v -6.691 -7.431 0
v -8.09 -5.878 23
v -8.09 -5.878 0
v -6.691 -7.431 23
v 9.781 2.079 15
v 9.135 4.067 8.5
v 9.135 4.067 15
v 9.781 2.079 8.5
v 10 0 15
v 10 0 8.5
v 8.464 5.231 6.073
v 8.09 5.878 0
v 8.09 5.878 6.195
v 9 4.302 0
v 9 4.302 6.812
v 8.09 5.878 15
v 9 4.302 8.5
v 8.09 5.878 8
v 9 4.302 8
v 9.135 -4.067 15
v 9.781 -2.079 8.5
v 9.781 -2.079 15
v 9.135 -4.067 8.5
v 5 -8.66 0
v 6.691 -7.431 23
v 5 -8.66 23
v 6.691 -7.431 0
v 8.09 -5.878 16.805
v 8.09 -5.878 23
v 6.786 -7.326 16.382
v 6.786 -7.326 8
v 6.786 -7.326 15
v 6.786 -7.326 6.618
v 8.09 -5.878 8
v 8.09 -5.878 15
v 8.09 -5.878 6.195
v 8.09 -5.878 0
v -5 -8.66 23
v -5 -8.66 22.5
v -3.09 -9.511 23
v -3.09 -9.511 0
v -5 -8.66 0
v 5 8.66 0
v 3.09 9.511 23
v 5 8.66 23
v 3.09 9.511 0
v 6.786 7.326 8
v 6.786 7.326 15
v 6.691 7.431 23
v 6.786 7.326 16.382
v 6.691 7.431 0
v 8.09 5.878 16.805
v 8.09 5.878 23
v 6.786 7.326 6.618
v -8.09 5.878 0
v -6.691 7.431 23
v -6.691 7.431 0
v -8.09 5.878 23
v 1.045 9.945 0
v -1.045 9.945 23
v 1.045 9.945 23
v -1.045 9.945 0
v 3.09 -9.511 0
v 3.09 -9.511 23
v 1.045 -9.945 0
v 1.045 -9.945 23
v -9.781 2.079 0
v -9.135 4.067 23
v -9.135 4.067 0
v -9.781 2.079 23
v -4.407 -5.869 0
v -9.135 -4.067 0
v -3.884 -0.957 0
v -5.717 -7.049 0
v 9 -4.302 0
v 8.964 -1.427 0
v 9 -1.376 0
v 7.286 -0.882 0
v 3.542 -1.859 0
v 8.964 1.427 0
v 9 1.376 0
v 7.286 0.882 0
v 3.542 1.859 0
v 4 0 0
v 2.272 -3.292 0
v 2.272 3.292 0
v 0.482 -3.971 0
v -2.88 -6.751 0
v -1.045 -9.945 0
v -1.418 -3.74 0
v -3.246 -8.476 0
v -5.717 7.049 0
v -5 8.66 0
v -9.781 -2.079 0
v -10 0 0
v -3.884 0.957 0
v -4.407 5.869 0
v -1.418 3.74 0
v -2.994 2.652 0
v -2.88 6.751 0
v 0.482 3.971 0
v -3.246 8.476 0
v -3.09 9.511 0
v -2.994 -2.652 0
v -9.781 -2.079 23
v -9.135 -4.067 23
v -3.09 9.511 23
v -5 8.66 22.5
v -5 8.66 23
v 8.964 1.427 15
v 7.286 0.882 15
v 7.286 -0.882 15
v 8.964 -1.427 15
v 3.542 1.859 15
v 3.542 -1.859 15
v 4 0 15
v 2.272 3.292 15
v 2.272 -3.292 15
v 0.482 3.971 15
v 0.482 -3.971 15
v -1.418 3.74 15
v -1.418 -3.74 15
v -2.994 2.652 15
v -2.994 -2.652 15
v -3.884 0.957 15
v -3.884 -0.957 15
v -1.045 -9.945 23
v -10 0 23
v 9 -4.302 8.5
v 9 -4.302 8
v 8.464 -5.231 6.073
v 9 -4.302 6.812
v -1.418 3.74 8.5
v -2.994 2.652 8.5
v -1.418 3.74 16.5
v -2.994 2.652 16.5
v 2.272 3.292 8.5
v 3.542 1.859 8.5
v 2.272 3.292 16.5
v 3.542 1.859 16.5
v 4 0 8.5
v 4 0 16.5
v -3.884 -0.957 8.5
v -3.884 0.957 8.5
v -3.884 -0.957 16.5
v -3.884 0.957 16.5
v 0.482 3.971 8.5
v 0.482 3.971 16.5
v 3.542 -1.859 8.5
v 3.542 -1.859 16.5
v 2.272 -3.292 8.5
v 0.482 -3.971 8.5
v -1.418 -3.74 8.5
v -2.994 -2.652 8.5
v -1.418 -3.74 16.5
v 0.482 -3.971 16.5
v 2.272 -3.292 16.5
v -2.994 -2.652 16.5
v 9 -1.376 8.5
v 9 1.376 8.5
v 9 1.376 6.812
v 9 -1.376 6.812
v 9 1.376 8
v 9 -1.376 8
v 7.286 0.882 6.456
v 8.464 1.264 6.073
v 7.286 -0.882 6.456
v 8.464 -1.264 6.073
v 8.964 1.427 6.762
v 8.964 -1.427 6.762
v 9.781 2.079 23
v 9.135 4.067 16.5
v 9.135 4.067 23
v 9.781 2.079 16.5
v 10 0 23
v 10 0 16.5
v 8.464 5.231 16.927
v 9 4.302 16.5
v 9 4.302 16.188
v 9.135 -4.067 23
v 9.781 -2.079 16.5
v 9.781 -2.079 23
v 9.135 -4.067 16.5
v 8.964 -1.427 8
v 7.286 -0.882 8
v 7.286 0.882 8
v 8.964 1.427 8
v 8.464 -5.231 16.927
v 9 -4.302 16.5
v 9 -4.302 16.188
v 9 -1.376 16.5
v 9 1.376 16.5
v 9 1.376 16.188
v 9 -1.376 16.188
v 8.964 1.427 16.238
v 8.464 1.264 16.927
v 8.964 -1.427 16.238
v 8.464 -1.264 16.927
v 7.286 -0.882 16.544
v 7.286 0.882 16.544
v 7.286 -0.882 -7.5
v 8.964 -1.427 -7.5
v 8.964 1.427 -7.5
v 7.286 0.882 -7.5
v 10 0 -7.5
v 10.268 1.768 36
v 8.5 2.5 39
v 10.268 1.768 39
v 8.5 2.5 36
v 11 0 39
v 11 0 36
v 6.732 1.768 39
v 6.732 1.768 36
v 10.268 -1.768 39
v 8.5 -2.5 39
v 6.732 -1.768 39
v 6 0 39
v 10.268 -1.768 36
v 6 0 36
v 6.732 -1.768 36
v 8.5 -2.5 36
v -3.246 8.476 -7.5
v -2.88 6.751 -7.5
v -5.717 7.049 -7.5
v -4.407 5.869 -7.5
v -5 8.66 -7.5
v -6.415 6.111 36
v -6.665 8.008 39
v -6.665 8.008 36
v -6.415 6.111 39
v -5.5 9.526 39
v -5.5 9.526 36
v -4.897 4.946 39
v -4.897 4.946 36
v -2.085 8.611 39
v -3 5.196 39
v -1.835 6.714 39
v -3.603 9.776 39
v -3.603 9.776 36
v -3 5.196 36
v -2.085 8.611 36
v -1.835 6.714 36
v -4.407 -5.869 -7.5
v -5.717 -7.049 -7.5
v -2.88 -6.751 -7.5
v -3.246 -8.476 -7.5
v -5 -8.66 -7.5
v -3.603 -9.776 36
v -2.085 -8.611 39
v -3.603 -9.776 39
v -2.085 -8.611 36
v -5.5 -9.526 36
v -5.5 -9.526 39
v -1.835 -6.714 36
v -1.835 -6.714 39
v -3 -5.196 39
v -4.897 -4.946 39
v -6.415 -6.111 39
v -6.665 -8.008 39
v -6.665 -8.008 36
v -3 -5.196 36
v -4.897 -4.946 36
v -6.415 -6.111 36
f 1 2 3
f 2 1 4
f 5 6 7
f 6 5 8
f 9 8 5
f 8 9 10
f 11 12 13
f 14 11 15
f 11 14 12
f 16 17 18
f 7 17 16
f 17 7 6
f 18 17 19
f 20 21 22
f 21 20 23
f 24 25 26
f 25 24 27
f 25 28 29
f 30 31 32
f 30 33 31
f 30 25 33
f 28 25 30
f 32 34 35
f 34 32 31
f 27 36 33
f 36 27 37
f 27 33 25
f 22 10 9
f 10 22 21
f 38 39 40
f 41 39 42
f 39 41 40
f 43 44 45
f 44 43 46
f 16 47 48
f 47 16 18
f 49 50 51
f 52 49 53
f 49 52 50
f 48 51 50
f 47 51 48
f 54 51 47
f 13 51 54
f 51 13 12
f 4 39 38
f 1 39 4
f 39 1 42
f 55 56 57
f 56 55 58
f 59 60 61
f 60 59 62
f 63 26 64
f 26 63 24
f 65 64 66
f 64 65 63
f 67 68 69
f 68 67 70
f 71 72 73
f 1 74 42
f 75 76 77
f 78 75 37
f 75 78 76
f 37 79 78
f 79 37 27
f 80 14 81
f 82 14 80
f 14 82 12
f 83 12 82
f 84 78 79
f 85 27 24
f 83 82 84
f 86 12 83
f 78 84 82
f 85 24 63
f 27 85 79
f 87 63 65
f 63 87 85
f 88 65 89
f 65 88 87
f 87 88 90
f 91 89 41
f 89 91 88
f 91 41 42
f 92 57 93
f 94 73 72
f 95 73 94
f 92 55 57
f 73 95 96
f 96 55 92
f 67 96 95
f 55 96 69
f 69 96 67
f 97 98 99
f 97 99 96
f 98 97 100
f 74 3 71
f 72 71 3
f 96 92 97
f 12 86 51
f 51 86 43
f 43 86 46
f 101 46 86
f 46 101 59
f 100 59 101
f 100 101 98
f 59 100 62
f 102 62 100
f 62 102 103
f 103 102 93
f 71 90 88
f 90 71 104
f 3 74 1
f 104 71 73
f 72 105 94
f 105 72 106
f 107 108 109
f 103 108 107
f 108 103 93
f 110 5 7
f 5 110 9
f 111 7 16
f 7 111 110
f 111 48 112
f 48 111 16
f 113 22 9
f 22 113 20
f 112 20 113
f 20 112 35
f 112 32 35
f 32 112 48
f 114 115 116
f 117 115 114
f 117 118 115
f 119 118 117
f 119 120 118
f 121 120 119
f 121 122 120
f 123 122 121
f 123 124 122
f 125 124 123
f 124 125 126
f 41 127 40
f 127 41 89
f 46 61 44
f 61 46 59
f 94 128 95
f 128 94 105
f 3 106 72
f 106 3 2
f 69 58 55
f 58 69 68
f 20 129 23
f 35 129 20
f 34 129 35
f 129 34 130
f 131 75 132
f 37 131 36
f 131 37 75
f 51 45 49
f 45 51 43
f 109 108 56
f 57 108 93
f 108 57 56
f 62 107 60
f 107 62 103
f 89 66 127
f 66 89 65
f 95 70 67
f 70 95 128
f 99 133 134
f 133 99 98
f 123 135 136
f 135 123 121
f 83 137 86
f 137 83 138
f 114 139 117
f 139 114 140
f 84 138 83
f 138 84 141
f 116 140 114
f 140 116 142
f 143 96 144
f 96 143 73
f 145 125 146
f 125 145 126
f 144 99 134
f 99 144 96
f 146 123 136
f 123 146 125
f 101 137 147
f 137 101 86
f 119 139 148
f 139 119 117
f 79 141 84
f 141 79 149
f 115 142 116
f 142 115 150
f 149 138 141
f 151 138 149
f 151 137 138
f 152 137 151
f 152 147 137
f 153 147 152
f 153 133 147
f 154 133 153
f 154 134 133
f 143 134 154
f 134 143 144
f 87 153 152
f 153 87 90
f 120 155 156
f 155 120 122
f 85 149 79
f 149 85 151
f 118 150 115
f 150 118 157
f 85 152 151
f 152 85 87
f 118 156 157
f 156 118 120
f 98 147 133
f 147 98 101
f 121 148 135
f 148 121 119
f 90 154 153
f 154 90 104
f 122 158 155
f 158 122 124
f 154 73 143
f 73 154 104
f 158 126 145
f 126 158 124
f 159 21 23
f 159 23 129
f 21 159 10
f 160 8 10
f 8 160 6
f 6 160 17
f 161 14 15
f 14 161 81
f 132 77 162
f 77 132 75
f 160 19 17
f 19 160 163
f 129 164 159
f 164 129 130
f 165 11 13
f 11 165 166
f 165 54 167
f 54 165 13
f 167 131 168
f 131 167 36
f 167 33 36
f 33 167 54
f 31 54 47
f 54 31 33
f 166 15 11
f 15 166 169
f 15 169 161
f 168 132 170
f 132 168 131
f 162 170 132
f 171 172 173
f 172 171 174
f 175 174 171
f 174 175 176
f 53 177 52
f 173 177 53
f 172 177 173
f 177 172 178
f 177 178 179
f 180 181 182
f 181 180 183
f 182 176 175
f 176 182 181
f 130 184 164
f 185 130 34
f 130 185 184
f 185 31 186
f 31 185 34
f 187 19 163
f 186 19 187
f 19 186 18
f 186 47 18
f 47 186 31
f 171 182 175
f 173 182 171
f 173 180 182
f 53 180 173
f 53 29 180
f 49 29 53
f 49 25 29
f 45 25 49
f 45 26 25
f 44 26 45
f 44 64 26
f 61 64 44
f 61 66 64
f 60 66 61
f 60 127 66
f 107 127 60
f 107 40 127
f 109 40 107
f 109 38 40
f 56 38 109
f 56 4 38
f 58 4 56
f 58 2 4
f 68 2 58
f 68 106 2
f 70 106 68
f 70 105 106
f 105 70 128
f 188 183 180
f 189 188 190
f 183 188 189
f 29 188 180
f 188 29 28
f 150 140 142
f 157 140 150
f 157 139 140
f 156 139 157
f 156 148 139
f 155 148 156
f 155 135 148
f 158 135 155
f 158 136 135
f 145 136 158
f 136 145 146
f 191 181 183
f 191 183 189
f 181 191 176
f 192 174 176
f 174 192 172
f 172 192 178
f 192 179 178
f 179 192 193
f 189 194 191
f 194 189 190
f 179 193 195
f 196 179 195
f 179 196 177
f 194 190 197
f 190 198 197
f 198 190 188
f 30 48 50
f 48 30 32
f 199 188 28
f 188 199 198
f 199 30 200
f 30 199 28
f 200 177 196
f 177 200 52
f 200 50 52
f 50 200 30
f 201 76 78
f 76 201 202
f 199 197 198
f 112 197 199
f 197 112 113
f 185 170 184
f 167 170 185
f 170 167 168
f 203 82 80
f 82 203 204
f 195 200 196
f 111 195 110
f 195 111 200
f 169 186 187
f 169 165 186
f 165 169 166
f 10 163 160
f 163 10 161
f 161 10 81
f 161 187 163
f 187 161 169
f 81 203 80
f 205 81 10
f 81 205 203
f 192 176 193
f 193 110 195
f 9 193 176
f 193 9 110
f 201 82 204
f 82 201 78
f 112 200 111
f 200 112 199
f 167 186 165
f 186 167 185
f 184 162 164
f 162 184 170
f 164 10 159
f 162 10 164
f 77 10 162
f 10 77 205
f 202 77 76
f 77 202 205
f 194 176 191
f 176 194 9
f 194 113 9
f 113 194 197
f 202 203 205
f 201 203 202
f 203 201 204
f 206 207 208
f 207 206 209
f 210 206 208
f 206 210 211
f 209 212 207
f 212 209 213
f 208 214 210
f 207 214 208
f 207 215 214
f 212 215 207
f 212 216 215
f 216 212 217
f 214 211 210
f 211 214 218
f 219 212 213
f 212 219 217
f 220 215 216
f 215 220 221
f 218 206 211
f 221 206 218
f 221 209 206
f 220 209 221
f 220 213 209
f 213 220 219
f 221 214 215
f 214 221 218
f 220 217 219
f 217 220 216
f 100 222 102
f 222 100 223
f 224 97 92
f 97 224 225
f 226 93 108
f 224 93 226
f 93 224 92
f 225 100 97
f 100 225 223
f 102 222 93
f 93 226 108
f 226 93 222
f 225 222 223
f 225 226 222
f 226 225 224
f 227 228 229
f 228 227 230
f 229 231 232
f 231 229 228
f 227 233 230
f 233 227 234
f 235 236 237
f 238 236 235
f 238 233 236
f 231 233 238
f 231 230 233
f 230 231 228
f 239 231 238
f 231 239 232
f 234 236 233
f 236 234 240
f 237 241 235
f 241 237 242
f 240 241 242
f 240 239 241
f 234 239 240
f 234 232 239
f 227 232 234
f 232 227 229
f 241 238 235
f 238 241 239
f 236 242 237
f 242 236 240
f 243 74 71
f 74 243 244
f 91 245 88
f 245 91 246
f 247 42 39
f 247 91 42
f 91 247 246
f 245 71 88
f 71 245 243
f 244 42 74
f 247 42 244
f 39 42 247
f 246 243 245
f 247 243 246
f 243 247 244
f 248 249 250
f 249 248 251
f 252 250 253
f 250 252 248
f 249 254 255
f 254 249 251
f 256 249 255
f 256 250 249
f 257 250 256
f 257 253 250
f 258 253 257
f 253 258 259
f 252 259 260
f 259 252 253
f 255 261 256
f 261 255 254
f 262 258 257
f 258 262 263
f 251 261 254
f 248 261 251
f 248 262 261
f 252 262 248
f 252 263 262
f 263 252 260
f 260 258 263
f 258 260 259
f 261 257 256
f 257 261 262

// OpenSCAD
// Parameters
hub_diameter = 20; // Diameter of the input and output hubs
hub_length = 15; // Length of the hubs
bore_diameter = 8; // Diameter of the central bore
slit_width = 1; // Width of the slit
threaded_hole_diameter = 3; // Diameter of the threaded hole
spacer_ring_diameter = 20; // Diameter of the flexible spacer rings
spacer_ring_thickness = 2; // Thickness of the spacer rings
spacer_ring_wave_amplitude = 1; // Amplitude of the wavy profile
spacer_ring_wave_frequency = 3; // Number of waves around the ring
screw_diameter = 3; // Diameter of the clamping screws
screw_length = 30; // Length of the clamping screws
nut_diameter = 5; // Diameter of the clamping nuts
nut_thickness = 3; // Thickness of the clamping nuts

// Modules
module hub() {
    difference() {
        cylinder(d = hub_diameter, h = hub_length, center = true);
        translate([0, 0, -hub_length / 2])
            cylinder(d = bore_diameter, h = hub_length + 2, center = true);
        translate([hub_diameter / 2 - slit_width / 2, 0, -hub_length / 2])
            cube([slit_width, hub_diameter, hub_length + 2], center = true);
        translate([hub_diameter / 2 - 2, 0, 0])
            rotate([90, 0, 0])
                cylinder(d = threaded_hole_diameter, h = hub_diameter, center = true);
    }
}

module flexible_spacer_ring() {
    difference() {
        cylinder(d = spacer_ring_diameter, h = spacer_ring_thickness, center = true);
        translate([0, 0, -spacer_ring_thickness / 2])
            cylinder(d = spacer_ring_diameter - 2, h = spacer_ring_thickness + 2, center = true);
        for (i = [0:360 / spacer_ring_wave_frequency:360]) {
            rotate([0, 0, i])
                translate([spacer_ring_diameter / 2 - spacer_ring_wave_amplitude, 0, 0])
                    sphere(r = spacer_ring_wave_amplitude);
        }
    }
}

module clamping_screw() {
    cylinder(d = screw_diameter, h = screw_length, center = true);
}

module clamping_nut() {
    cylinder(d = nut_diameter, h = nut_thickness, center = true);
}

// Assembly
module flexible_coupling() {
    translate([0, 0, hub_length / 2])
        hub(); // Input hub
    translate([0, 0, hub_length / 2 + spacer_ring_thickness])
        flexible_spacer_ring(); // First spacer ring
    translate([0, 0, hub_length / 2 + 2 * spacer_ring_thickness])
        flexible_spacer_ring(); // Second spacer ring
    translate([0, 0, hub_length / 2 + 3 * spacer_ring_thickness])
        flexible_spacer_ring(); // Third spacer ring
    translate([0, 0, hub_length / 2 + 4 * spacer_ring_thickness])
        hub(); // Output hub

    // Clamping screws and nuts
    for (i = [0:120:360]) {
        rotate([0, 0, i]) {
            translate([hub_diameter / 2 - screw_diameter / 2, 0, hub_length / 2])
                clamping_screw();
            translate([hub_diameter / 2 - screw_diameter / 2, 0, hub_length / 2 + screw_length])
                clamping_nut();
        }
    }
}

// Render the flexible coupling
flexible_coupling();
